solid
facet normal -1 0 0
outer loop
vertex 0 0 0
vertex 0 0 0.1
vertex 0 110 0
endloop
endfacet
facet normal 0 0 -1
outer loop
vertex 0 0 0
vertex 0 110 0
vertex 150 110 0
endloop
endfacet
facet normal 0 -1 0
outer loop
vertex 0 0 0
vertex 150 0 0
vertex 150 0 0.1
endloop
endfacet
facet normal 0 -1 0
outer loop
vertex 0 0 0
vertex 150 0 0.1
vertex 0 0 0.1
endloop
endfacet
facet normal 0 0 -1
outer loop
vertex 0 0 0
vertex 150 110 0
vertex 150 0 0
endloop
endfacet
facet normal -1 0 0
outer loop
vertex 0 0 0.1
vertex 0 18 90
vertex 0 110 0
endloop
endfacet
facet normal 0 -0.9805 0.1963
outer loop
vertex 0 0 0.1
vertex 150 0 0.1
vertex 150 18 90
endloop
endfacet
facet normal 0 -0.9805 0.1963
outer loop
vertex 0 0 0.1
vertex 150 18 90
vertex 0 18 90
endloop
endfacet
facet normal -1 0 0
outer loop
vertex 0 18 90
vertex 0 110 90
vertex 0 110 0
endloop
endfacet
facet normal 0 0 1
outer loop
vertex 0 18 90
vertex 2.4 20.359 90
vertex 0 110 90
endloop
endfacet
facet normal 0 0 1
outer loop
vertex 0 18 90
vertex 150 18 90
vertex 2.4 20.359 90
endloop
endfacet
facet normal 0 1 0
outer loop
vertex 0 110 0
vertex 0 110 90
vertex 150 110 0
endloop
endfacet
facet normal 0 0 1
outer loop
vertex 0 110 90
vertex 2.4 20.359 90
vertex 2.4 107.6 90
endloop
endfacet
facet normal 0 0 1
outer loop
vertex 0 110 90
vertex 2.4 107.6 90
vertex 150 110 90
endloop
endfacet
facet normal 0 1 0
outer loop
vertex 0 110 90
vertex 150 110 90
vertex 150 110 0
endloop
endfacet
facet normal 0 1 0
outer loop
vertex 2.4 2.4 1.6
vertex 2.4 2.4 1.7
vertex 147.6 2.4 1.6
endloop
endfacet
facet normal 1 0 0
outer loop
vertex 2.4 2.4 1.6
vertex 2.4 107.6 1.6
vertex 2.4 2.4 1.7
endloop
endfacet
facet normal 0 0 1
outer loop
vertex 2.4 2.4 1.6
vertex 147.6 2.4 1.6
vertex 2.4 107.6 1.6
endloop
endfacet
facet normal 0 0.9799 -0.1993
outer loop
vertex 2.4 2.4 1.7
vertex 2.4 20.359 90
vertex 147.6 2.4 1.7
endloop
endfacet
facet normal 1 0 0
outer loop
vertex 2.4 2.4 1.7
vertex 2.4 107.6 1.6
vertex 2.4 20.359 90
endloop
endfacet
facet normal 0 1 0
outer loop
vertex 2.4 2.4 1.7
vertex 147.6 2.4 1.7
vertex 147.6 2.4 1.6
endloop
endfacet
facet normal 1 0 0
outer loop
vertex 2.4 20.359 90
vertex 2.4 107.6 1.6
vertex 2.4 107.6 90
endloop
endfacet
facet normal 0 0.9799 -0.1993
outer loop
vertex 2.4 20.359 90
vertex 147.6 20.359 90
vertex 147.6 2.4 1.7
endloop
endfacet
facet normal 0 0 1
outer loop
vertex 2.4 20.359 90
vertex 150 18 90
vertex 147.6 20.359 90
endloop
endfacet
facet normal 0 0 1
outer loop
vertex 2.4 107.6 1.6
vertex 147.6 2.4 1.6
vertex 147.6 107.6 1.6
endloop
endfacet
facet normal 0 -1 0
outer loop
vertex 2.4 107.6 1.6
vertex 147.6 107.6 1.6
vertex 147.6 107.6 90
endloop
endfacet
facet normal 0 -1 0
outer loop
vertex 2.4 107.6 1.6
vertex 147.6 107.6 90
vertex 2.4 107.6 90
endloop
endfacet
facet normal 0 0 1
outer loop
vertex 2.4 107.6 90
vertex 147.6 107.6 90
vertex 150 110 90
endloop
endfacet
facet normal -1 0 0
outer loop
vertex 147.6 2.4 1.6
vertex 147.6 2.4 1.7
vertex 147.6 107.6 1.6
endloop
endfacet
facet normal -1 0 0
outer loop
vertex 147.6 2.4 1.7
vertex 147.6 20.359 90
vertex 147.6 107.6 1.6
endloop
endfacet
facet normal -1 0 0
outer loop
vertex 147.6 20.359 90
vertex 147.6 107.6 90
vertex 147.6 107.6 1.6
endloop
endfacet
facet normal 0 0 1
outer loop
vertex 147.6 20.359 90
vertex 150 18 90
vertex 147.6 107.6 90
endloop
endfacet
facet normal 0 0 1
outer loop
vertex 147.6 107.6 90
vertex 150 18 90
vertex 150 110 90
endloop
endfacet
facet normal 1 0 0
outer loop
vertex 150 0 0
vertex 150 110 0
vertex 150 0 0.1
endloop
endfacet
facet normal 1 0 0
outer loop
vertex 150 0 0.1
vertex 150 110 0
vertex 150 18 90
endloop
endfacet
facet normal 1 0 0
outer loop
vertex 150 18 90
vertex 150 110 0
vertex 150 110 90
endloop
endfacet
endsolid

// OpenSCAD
// A1 Filament Catch Box
//
// Open-top bin that sits on the desk/surface next to the Bambu Lab A1.
// Catches filament trim scraps from the toolhead cutter, purge blobs
// during load/unload, and AMS-lite poop.
//
// Design: rectangular box with the front wall leaning INWARD at the
// top — bits bouncing out hit the lip and fall back in.
//
// Footprint: 150 x 110 mm — tucks on either side of the A1 without
// blocking bed travel. Adjust OUTER_* constants below if you want a
// different fit.

$fn = 48;

// --- Parameters ---
OUTER_W   = 150;   // width  (X, parallel to A1 front edge)
OUTER_D   = 110;   // depth  (Y, away from the printer)
OUTER_H   = 90;    // height (Z)
WALL      = 2.4;   // wall thickness — 6 perimeters at 0.4 mm nozzle
FLOOR     = 1.6;   // floor thickness
TOP_INSET = 18;    // inward lean of the front wall at the top

// --- Build ---

module outer_shell() {
    // Hull between the bottom footprint and a top footprint that has
    // pulled inward at the front edge (creates the leaning front wall).
    hull() {
        linear_extrude(height = 0.1)
            square([OUTER_W, OUTER_D]);
        translate([0, TOP_INSET, OUTER_H - 0.1])
            linear_extrude(height = 0.1)
                square([OUTER_W, OUTER_D - TOP_INSET]);
    }
}

module inner_cavity() {
    hull() {
        translate([WALL, WALL, FLOOR])
            linear_extrude(height = 0.1)
                square([OUTER_W - 2*WALL, OUTER_D - 2*WALL]);
        translate([WALL, WALL + TOP_INSET, OUTER_H + 0.1])
            linear_extrude(height = 0.1)
                square([OUTER_W - 2*WALL, OUTER_D - 2*WALL - TOP_INSET]);
    }
}

difference() {
    outer_shell();
    inner_cavity();
}
